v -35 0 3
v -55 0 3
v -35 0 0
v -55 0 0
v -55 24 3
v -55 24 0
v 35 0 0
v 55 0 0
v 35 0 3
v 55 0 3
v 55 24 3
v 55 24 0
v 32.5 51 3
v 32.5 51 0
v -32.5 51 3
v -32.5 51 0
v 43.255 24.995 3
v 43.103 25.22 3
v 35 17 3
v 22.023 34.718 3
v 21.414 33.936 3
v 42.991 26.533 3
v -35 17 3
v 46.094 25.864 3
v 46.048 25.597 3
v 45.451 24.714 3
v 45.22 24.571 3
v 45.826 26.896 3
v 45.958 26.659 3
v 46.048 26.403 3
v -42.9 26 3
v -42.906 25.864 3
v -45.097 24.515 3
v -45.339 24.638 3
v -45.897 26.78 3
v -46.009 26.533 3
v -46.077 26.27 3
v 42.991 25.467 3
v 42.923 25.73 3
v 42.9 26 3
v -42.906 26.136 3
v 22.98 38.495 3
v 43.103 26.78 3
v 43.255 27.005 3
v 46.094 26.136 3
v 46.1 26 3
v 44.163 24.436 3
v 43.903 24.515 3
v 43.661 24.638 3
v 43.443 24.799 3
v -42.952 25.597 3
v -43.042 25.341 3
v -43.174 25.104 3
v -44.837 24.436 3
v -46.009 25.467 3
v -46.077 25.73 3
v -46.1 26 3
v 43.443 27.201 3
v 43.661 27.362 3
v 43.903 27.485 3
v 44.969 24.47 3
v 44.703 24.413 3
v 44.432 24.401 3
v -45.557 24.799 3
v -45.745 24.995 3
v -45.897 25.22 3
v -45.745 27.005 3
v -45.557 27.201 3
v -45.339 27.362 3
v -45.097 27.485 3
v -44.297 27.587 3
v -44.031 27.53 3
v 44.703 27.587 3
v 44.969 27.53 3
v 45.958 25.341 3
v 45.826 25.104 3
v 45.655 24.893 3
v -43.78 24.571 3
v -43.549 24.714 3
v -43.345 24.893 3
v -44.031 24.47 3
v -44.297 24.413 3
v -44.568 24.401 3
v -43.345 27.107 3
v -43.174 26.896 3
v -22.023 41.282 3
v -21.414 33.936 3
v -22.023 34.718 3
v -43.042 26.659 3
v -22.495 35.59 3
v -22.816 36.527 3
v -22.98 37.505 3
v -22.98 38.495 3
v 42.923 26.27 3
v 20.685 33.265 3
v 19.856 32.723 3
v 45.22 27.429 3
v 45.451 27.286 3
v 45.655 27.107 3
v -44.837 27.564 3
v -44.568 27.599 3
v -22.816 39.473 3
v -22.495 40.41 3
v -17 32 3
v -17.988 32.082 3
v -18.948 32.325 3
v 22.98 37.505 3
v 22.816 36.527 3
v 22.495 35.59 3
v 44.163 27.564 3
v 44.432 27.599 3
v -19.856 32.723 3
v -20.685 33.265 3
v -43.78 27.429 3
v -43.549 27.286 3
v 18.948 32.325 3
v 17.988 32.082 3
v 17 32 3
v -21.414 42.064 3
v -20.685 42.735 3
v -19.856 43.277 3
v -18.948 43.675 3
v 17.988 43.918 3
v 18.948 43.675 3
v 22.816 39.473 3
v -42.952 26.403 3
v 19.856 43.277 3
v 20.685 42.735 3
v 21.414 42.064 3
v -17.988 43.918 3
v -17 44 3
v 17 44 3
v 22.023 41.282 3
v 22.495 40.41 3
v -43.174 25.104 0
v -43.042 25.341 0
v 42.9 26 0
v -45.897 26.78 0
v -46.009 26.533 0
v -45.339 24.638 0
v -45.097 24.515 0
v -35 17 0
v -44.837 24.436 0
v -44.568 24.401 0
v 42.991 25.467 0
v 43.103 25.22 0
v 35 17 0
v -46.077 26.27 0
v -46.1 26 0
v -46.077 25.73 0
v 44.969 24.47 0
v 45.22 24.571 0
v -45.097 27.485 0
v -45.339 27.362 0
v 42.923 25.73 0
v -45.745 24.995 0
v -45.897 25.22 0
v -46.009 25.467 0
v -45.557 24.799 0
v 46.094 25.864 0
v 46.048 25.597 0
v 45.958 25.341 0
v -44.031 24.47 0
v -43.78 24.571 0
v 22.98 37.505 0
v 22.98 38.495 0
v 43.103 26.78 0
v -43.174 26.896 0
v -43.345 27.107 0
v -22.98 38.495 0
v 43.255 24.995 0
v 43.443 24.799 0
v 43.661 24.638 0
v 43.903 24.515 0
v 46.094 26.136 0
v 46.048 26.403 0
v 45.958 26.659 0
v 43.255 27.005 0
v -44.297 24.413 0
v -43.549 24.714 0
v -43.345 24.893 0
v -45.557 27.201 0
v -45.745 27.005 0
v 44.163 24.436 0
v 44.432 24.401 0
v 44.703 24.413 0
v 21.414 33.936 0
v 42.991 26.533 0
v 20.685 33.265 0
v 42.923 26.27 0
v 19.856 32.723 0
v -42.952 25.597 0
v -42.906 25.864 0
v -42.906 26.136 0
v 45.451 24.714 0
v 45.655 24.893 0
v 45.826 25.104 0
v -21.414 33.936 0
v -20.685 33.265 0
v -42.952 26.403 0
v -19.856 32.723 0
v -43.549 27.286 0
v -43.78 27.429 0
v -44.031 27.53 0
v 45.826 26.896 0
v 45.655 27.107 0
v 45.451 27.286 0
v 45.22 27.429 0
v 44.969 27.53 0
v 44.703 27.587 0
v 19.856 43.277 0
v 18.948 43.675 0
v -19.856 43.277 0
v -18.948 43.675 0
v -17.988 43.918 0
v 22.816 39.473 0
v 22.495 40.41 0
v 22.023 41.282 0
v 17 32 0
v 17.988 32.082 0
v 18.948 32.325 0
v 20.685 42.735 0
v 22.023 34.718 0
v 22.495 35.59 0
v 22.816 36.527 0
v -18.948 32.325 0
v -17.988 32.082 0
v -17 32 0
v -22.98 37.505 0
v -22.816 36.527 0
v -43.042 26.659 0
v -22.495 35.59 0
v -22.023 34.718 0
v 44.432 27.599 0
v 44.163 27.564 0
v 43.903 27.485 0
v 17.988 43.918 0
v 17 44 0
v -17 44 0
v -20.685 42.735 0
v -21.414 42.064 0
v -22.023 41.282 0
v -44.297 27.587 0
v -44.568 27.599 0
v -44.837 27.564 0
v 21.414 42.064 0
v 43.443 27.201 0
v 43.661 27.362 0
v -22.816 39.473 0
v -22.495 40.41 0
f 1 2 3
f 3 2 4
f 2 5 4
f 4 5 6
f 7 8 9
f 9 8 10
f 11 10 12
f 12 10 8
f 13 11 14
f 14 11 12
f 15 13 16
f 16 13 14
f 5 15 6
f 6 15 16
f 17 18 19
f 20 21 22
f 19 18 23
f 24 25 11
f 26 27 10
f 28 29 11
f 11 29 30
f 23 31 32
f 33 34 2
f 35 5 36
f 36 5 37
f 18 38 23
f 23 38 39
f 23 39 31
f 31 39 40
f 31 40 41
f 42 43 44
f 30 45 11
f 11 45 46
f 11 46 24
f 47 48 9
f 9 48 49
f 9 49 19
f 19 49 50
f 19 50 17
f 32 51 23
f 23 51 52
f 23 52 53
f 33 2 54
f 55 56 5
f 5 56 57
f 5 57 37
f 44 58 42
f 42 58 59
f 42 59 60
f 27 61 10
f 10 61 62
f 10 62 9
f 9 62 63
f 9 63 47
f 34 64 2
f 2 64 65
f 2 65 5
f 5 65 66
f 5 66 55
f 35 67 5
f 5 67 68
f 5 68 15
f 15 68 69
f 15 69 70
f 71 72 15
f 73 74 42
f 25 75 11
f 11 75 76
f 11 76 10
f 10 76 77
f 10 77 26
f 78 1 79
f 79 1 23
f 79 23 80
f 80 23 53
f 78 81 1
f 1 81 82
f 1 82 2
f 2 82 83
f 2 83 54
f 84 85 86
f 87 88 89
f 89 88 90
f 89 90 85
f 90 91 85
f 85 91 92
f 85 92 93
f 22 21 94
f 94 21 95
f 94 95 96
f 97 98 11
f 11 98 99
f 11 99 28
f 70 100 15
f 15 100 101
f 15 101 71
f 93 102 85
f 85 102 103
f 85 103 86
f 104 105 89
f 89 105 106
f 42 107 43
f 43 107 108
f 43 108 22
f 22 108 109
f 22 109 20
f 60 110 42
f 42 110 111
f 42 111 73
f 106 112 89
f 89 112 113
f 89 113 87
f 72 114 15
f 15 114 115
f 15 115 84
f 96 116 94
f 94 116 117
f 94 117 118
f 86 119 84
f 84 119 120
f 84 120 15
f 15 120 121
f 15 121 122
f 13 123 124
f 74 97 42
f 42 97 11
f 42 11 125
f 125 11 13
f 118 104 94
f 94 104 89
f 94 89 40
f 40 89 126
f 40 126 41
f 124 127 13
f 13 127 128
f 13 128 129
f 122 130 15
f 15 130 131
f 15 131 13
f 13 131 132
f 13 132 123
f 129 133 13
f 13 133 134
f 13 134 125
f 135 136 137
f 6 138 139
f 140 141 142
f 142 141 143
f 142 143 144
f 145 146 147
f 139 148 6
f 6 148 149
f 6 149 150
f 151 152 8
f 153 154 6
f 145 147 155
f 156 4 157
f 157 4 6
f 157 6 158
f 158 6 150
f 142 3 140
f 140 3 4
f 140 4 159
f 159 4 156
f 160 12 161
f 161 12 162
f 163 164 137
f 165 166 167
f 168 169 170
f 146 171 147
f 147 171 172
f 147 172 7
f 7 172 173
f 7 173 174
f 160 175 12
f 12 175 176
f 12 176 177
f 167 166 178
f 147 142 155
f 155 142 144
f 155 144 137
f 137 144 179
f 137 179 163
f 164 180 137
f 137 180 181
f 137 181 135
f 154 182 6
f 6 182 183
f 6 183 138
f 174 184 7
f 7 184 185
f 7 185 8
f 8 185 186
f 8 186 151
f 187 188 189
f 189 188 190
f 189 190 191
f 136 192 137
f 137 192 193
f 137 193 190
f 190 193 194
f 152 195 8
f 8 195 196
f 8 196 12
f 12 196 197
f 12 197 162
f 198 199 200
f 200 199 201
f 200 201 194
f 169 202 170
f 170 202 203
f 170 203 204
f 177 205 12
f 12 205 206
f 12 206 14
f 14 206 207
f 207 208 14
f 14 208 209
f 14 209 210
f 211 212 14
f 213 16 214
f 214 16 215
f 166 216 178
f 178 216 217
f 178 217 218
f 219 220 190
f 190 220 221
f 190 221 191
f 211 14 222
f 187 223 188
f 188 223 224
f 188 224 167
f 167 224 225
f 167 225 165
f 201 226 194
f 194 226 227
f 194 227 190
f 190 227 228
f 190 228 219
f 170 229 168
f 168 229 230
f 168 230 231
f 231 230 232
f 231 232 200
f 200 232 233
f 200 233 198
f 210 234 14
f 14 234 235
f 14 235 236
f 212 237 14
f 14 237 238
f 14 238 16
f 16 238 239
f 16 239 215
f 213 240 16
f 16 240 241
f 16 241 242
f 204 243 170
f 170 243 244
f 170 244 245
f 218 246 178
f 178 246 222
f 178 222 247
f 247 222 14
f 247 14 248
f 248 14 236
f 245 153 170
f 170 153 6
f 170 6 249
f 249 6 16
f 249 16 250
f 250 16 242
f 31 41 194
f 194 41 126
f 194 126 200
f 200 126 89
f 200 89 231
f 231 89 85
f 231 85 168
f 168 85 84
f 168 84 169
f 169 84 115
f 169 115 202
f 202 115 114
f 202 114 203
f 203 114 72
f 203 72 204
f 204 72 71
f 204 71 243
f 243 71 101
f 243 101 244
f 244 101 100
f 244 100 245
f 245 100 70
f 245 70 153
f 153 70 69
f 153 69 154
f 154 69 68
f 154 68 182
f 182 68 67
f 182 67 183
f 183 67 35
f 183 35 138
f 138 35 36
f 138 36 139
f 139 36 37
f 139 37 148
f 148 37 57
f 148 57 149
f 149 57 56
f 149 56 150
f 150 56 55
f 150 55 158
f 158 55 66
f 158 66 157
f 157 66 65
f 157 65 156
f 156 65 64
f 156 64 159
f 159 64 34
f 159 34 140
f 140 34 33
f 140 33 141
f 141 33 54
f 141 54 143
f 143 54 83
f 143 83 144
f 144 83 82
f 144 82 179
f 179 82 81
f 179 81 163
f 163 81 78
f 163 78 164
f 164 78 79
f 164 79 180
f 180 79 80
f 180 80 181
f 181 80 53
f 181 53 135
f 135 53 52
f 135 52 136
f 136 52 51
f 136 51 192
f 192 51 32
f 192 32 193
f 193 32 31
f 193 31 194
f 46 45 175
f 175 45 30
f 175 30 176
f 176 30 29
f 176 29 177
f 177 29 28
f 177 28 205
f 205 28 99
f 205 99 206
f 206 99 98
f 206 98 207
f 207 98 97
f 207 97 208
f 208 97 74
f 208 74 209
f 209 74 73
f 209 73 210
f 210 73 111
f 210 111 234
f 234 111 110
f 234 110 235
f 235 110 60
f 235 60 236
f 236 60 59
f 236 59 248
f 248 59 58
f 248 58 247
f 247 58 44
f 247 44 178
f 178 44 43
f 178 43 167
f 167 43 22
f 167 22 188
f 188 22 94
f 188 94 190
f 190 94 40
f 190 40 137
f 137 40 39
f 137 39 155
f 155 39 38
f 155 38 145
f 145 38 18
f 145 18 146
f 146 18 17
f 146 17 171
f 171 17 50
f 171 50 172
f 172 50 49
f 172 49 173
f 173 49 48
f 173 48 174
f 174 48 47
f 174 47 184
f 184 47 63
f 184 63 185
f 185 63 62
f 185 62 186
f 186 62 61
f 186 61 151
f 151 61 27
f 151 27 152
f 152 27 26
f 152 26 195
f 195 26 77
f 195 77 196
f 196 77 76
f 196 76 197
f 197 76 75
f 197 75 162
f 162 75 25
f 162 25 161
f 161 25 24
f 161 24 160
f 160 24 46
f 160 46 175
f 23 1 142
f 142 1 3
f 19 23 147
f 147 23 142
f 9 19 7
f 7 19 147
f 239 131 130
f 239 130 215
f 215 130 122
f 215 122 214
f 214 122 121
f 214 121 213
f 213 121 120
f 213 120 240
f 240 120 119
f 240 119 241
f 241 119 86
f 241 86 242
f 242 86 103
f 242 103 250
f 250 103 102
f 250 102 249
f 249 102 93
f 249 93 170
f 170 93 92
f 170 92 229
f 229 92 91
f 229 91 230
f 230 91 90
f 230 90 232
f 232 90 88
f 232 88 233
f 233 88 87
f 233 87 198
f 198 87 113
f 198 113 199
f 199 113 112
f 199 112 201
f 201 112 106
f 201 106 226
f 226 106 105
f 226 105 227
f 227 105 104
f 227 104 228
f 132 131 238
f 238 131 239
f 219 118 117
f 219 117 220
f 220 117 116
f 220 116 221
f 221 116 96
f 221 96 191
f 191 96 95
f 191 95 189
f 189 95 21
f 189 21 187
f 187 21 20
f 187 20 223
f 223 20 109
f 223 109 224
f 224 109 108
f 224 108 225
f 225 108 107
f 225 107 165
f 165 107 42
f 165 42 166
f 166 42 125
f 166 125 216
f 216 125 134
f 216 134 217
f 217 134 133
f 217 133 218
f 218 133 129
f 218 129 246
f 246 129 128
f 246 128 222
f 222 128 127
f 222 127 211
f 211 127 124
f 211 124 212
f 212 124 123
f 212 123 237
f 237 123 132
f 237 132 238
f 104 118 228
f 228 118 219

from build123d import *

# Parameters (mm, degrees)
SALIENTE_EXTRUIR1_DEPTH          = 3
TALADRO_DE_MARGEN_PARA_M31_D     = 3.2
TALADRO_DE_MARGEN_PARA_M31_DEPTH = 5
TALADRO_DE_MARGEN_PARA_M31_TIP   = 0.96137699
CORTAR_EXTRUIR1_REACH            = 77.067
CROQUIS4_W                       = 70
CROQUIS4_H                       = 17
CORTAR_EXTRUIR2_REACH            = 77.067


with BuildPart() as part:
    # Croquis1 → Saliente-Extruir1 (new body)
    with BuildSketch(Plane.XY):
        Polygon((-55, 0), (55, 0), (55, 24), (32.5, 51), (-32.5, 51), (-55, 24), align=None)
    extrude(amount=SALIENTE_EXTRUIR1_DEPTH)

    # Taladro de margen para M31
    with Locations(Plane(origin=(44.5, 26, 0), x_dir=(-1, 0, 0), z_dir=(0, 0, -1))):
        with Locations((0, 0), (89, 0)):
            Hole(TALADRO_DE_MARGEN_PARA_M31_D / 2, depth=TALADRO_DE_MARGEN_PARA_M31_DEPTH)
            with Locations((0, 0, -(TALADRO_DE_MARGEN_PARA_M31_DEPTH + TALADRO_DE_MARGEN_PARA_M31_TIP / 2))):  # 118° drill point
                Cone(0, TALADRO_DE_MARGEN_PARA_M31_D / 2, TALADRO_DE_MARGEN_PARA_M31_TIP, mode=Mode.SUBTRACT)

    # Croquis4 → Cortar-Extruir1 (cut, up to next)
    with BuildSketch(Plane.XY.offset(3), mode=Mode.PRIVATE) as cortar_extruir1_sk1:
        with Locations((0, 8.5)):
            Rectangle(CROQUIS4_W, CROQUIS4_H)
    cortar_extruir1_tool1 = extrude(cortar_extruir1_sk1.sketch, amount=-CORTAR_EXTRUIR1_REACH, mode=Mode.PRIVATE) & part.part
    add(cortar_extruir1_tool1.solids().sort_by_distance((0, 8.5, 3))[0], mode=Mode.SUBTRACT)

    # Croquis5 → Cortar-Extruir2 (cut, up to next)
    with BuildSketch(Plane.XY.offset(3), mode=Mode.PRIVATE) as cortar_extruir2_sk1:
        with BuildLine():
            Line((-17, 44), (17, 44))
            ThreePointArc((17, 44), (23, 38), (17, 32))
            Line((17, 32), (-17, 32))
            ThreePointArc((-17, 32), (-23, 38), (-17, 44))
        make_face()
    cortar_extruir2_tool1 = extrude(cortar_extruir2_sk1.sketch, amount=-CORTAR_EXTRUIR2_REACH, mode=Mode.PRIVATE) & part.part
    add(cortar_extruir2_tool1.solids().sort_by_distance((0, 38, 3))[0], mode=Mode.SUBTRACT)


solid = part.part
